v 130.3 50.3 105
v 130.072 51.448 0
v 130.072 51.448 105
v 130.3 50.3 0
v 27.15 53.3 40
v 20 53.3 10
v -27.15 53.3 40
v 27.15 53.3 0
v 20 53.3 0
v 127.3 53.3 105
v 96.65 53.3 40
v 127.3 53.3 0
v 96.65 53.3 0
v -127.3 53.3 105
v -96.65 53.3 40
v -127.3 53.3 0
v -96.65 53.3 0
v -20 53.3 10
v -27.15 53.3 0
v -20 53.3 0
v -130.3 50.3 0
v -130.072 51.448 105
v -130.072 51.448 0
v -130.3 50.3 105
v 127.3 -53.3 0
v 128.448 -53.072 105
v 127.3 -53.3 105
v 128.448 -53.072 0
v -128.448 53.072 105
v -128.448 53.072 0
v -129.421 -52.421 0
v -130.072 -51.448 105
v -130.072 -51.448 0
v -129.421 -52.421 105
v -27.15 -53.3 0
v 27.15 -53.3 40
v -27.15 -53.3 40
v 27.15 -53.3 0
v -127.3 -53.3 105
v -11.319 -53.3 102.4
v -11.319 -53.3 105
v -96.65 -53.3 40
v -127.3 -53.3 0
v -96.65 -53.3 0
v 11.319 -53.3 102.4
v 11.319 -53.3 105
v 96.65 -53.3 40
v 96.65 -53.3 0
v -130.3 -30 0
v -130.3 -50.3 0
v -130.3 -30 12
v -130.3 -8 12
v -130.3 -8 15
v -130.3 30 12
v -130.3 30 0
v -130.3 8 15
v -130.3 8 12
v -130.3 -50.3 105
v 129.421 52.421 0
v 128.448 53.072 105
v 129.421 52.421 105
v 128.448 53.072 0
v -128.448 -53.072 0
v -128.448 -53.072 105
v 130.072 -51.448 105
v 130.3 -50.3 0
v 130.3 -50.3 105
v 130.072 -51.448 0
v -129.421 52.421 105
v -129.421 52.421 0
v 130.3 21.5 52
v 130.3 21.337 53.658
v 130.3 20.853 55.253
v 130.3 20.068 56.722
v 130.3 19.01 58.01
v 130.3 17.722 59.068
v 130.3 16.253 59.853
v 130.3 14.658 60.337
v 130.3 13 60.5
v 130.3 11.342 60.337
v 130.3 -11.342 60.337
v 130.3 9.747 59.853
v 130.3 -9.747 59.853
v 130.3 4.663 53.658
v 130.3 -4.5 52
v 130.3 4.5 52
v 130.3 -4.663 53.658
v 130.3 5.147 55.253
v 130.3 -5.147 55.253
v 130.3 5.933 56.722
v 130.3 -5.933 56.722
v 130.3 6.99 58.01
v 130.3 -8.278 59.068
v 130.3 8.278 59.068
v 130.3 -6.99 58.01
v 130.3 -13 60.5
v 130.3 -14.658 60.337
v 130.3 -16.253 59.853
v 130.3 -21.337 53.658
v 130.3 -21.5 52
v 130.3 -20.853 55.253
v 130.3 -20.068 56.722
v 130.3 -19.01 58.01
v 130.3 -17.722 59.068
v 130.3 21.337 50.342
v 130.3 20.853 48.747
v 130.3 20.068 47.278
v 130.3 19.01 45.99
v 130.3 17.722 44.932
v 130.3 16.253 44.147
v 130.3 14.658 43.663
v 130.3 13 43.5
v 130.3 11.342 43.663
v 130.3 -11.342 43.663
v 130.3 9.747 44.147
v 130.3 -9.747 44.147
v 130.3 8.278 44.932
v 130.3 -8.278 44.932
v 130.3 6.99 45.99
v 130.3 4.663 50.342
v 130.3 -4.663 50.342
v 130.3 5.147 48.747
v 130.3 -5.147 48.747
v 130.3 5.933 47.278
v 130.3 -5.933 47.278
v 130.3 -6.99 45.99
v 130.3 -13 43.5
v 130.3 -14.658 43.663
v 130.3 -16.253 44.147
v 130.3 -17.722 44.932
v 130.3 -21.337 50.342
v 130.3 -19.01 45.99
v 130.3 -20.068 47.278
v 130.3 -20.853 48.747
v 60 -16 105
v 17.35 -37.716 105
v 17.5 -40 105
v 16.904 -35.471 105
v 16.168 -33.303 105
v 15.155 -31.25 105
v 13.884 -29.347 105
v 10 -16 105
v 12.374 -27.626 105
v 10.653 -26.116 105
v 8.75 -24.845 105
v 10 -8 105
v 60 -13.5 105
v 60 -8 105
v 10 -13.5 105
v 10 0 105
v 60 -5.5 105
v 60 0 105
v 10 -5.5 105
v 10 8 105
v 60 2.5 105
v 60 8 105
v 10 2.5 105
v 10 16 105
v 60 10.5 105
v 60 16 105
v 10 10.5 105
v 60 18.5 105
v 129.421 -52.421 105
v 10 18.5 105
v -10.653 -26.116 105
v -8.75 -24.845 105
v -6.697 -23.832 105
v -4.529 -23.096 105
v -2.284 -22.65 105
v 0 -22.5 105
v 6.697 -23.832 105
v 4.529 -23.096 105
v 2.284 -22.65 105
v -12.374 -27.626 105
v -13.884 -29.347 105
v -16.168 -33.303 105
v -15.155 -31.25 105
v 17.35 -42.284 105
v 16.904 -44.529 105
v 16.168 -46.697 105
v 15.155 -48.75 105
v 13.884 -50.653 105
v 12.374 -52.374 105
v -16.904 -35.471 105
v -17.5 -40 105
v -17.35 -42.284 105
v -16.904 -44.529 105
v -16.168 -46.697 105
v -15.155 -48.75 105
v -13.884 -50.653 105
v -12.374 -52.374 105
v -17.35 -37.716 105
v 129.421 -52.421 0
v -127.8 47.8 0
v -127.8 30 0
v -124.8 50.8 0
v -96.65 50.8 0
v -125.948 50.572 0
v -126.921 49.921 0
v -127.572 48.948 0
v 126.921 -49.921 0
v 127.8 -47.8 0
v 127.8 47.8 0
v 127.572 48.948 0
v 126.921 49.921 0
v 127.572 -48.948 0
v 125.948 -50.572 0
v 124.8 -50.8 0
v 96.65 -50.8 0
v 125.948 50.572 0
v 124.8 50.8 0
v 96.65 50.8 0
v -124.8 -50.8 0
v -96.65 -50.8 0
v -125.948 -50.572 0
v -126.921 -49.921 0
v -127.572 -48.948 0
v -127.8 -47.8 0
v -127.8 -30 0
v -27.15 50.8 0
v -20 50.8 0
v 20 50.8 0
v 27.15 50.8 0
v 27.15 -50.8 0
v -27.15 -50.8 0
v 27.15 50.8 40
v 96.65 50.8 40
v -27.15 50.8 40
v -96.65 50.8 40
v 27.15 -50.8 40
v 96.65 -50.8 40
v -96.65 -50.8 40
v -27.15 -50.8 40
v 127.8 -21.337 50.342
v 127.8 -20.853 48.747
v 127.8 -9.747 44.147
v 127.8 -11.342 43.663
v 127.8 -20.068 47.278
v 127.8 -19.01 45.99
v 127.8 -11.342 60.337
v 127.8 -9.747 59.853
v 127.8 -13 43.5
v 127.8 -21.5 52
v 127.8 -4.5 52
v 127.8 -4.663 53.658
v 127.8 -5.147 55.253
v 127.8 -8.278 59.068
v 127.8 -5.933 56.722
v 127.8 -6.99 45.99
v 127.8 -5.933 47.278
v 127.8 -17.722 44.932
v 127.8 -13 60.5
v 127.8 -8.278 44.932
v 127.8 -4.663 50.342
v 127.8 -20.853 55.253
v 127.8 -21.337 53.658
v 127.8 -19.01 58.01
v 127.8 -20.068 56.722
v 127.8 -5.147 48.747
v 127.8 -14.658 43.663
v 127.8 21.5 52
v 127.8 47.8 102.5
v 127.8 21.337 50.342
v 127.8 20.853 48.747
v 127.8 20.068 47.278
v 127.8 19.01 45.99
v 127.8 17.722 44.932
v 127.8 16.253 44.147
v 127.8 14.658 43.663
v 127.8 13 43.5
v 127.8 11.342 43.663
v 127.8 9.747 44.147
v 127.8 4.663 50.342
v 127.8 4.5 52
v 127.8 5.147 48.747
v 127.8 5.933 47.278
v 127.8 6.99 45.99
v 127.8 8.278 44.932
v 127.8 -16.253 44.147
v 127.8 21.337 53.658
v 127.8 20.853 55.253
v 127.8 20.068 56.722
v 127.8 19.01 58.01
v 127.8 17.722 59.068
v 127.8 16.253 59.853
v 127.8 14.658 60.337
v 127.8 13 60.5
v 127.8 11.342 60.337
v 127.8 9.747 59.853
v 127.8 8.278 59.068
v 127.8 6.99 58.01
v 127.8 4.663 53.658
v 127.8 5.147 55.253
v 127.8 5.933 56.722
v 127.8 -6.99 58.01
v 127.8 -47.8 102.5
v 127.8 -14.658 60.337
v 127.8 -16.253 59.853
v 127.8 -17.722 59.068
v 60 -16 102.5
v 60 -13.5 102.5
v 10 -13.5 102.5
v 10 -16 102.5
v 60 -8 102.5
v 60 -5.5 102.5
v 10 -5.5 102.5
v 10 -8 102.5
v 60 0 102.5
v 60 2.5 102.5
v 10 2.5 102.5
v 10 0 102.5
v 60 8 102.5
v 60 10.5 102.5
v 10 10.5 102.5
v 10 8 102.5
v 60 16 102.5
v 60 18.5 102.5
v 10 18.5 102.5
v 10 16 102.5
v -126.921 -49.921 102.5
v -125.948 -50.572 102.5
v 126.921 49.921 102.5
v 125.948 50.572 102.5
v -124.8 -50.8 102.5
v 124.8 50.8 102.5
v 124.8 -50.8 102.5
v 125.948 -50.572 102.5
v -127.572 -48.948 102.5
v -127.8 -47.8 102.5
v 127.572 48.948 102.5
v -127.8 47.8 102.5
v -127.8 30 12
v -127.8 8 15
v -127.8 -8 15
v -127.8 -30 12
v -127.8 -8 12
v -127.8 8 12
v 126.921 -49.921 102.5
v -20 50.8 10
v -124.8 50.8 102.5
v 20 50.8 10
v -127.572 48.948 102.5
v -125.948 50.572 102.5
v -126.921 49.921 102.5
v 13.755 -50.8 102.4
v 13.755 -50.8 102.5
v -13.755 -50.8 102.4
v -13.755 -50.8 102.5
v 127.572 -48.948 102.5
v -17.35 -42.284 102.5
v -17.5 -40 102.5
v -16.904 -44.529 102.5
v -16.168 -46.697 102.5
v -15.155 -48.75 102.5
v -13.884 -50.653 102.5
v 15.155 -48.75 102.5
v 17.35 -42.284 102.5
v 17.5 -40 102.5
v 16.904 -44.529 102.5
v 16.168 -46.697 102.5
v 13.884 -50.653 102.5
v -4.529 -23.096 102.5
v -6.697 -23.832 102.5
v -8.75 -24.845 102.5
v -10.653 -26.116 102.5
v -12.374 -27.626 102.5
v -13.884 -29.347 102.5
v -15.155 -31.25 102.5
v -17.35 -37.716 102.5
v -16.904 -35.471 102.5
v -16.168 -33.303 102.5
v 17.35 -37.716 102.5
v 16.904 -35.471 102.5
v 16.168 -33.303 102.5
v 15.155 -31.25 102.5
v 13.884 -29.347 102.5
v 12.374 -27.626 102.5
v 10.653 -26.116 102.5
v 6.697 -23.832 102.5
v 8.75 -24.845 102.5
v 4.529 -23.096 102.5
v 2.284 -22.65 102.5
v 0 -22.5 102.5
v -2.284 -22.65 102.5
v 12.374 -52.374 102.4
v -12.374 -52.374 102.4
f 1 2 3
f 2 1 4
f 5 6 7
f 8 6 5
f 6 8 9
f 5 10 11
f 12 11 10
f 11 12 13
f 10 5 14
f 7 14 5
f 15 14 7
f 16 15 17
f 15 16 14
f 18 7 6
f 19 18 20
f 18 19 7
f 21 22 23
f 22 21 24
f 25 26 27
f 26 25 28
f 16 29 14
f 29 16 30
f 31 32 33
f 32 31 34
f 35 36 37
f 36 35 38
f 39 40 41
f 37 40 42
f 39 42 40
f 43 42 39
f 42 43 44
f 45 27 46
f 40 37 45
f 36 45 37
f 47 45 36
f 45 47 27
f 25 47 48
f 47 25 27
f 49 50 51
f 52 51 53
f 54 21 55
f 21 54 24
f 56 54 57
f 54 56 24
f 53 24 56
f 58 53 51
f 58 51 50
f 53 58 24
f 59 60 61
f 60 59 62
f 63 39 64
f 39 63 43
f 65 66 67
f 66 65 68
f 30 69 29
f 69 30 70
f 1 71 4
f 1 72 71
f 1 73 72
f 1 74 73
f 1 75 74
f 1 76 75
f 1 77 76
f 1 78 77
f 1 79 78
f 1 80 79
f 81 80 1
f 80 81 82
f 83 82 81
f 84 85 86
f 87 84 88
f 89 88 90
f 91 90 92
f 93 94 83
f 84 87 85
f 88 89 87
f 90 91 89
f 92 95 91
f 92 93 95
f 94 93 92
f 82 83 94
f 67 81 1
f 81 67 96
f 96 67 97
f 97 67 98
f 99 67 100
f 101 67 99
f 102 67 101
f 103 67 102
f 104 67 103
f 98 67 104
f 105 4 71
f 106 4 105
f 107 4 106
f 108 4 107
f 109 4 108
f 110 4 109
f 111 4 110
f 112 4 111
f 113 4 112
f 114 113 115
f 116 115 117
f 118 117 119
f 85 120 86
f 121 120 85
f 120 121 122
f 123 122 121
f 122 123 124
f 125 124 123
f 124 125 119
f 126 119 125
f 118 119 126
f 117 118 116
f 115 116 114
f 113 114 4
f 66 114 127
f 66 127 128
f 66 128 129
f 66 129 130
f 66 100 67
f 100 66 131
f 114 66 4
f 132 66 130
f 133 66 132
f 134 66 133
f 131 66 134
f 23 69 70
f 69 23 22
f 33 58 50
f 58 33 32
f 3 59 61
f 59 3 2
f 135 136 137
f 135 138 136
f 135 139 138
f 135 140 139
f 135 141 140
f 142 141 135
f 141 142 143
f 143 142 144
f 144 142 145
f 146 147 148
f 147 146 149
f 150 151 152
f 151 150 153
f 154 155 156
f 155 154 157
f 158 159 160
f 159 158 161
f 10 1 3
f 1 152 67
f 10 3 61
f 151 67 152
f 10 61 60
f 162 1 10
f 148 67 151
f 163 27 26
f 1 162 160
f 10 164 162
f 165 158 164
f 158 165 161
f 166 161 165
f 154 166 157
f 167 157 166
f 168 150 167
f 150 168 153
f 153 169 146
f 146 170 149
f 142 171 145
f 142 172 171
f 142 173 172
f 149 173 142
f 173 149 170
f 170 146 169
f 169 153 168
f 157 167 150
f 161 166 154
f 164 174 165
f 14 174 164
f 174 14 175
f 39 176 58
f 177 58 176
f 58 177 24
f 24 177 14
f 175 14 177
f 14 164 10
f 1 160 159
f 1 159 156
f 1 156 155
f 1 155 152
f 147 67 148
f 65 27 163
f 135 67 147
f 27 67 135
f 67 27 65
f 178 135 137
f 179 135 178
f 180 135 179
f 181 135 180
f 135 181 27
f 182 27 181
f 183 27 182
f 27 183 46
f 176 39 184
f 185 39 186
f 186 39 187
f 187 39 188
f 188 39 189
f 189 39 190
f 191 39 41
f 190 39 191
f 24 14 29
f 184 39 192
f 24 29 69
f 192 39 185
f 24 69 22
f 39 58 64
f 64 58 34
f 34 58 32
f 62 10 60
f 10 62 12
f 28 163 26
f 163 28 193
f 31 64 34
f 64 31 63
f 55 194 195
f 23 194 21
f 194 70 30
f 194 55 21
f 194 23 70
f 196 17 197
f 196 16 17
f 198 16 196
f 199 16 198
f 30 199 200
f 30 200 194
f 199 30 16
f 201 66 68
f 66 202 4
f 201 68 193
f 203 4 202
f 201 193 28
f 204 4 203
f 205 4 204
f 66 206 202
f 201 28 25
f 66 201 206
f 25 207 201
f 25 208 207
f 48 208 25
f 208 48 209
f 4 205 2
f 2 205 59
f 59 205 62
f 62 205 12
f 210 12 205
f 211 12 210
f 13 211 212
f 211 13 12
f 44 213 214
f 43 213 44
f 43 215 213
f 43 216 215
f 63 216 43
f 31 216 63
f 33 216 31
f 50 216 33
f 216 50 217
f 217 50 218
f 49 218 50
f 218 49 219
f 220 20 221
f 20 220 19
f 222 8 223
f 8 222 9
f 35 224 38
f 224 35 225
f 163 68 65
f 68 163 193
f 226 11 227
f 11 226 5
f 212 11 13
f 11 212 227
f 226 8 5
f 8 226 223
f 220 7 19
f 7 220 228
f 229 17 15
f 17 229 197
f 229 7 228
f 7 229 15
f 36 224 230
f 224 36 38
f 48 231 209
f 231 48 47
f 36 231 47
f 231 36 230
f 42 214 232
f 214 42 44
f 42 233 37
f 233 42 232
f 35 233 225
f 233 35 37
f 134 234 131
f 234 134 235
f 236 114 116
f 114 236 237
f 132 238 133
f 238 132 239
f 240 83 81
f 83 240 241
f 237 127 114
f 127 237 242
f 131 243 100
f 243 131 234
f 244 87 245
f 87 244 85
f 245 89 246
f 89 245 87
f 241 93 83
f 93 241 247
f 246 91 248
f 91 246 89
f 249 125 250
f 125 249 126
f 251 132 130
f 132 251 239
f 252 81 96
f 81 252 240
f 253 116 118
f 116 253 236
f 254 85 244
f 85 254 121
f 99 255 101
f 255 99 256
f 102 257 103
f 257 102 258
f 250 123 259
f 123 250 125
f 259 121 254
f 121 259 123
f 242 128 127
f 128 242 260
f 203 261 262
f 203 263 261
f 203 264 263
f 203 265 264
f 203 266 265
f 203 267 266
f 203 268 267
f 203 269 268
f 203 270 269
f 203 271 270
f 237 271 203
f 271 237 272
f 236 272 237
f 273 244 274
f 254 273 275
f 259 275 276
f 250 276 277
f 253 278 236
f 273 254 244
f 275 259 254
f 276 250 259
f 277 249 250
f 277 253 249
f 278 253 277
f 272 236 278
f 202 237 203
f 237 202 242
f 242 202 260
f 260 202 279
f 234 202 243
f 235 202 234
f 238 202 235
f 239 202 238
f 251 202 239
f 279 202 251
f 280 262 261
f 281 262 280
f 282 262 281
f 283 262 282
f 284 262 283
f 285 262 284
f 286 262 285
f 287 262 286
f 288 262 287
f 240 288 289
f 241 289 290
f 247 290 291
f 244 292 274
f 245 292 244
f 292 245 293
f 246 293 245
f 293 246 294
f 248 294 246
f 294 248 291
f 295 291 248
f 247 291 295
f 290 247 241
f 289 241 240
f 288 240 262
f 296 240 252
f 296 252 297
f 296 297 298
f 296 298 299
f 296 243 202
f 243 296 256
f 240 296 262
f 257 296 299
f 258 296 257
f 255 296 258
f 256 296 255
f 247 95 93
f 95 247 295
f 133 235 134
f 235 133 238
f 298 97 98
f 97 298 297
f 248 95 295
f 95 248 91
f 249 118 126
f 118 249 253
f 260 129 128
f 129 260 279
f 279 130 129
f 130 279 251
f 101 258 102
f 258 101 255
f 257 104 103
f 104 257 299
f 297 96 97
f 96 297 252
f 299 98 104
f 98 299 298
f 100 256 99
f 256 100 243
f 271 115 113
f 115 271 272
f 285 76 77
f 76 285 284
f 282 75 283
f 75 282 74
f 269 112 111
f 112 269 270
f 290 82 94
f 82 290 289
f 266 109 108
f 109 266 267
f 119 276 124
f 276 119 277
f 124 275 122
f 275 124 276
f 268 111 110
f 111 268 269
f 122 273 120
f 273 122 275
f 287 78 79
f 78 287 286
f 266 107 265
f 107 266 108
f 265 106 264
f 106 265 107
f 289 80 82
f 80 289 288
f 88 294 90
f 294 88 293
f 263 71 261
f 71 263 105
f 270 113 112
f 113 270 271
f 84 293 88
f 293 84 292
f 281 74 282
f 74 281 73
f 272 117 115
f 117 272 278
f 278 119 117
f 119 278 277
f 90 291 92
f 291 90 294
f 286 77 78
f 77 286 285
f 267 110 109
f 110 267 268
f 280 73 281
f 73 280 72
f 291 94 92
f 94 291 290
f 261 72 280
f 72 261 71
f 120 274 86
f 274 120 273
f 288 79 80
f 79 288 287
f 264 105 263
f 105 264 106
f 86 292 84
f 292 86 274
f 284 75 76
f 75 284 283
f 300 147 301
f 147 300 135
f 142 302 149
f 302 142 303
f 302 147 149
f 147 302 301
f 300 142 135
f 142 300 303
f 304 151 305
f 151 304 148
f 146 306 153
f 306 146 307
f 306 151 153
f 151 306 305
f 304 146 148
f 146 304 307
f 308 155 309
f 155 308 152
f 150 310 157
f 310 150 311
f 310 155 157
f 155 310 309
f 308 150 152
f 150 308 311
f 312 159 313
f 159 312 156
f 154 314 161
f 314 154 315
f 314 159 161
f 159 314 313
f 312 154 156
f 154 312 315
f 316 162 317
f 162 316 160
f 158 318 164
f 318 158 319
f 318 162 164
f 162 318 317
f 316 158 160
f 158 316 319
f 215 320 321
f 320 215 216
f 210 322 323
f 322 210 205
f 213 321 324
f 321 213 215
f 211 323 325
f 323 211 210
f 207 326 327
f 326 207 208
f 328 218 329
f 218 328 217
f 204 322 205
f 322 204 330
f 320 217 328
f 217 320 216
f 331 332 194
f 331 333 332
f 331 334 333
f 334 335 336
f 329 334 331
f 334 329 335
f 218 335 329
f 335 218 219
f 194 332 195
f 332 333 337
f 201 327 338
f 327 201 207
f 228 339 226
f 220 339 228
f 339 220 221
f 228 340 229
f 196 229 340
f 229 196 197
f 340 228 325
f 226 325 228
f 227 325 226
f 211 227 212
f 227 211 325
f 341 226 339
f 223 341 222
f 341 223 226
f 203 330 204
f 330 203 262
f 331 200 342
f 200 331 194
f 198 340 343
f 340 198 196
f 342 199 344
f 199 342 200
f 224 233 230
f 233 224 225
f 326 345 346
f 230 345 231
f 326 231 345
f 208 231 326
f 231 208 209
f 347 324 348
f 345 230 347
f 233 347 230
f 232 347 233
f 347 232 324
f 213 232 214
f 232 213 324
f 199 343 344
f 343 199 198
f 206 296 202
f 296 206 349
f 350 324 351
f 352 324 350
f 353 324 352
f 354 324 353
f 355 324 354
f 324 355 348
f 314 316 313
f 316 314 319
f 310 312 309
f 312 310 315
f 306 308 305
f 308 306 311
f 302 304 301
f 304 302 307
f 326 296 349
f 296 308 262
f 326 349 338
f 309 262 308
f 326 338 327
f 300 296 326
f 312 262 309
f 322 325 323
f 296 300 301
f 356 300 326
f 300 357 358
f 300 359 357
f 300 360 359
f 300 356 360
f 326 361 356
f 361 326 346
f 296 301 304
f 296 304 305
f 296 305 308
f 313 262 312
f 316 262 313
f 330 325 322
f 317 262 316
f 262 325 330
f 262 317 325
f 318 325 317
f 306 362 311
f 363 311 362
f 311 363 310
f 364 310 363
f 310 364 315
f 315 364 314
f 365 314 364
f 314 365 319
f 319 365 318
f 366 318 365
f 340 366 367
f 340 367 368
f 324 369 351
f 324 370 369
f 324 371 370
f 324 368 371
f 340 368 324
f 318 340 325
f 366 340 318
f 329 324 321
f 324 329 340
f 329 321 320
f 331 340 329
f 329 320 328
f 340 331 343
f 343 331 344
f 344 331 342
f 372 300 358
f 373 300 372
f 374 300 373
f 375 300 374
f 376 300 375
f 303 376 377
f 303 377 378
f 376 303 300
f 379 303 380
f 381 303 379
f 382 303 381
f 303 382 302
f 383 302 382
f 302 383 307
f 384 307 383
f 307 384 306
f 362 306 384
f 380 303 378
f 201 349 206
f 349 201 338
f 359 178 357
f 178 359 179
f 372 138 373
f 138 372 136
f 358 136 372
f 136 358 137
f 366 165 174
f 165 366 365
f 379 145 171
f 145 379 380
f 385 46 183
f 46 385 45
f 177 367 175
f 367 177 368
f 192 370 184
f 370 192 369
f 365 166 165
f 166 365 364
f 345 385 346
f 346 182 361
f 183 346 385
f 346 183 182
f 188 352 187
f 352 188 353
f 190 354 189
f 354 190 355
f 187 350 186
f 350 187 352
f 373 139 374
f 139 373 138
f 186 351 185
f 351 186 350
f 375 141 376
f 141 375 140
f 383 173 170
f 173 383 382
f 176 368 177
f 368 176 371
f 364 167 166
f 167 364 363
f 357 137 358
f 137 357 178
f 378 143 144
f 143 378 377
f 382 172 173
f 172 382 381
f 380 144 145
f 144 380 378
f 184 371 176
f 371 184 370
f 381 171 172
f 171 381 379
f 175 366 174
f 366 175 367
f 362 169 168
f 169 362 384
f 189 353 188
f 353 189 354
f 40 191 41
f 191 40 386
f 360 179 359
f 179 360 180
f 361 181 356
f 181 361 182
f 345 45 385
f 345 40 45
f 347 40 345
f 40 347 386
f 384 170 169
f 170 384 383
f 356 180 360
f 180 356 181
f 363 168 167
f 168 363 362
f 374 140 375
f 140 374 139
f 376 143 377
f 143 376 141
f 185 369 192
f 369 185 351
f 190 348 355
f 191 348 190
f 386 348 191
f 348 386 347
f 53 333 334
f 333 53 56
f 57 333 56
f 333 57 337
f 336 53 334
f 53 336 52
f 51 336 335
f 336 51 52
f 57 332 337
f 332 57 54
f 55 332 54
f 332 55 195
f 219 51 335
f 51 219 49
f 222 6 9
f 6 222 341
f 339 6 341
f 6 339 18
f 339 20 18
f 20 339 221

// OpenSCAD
// ============================================
// ESCORT BOT SHELL — Clean Minimal Box v4
// ============================================
// MEASURED by Romeo 2026-03-19:
//   Total width (tire-to-tire): 6" (152.4mm)
//   Tire width: 1" (25.4mm) each
//   Tire diameter: 2.5" (63.5mm)
//   Gap between front & rear tires: 2-3/8" (60.3mm)
//   Chassis length: 10" (254mm, Amazon confirmed)
// Mounting: L-brackets at 4 corners
//
// F5 = preview | F6 = render | File > Export STL
// Print: 0.2mm layer, 15% infill, no supports
// ============================================

// --- DIMENSIONS (mm) — REAL MEASUREMENTS ---
chassis_l  = 254;      // 10" front-to-back (Amazon confirmed)
chassis_w  = 100;      // frame body width (152mm tire-to-tire - 2x25.4mm tires = 101.2mm - clearance)
wheel_d    = 63.5;     // 2.5" tire diameter (measured)
wheel_w    = 25.4;     // 1" tire width (measured)
tire_gap   = 60.3;     // 2-3/8" gap between front & rear tires (measured)
wheel_r    = wheel_d / 2 + 3;  // 34.75mm — radius + 3mm clearance

// Shell height: keeping 105mm (ground-to-tallest ~165mm, plate at ~63.5mm)
shell_h    = 105;
wall       = 2.5;
tol        = 0.8;      // slide-on fit gap per side
corner_r   = 3;

// Derived outer dims
inner_l = chassis_l + tol * 2;
inner_w = chassis_w + tol * 2;
outer_l = inner_l + wall * 2;
outer_w = inner_w + wall * 2;

// Wheel arch height — how tall the arch cutout is from the bottom
// Tires are 63.5mm diameter, poke ~6mm above the support plate
wheel_arch_h = 40;

// Wheel positions — DERIVED FROM TIRE GAP MEASUREMENT
// Axle-to-axle = tire_gap + wheel_d = 60.3 + 63.5 = 123.8mm
// wx = half that distance from chassis center
wx = (tire_gap + wheel_d) / 2;  // ~61.9mm from center
wy = outer_w / 2;               // wheels at the side walls

// L-bracket mounting — 4 corners
bracket_hole_d = 5;    // M3 or M4 screw + clearance
bracket_tab_w  = 12;   // tab width
bracket_tab_d  = 12;   // tab depth (inward from wall)
bracket_tab_h  = 3;    // tab thickness
bracket_z      = 15;   // height above bottom edge
// Bracket tab inset from wheel arch (so they don't collide)
bracket_inset  = 20;   // mm inboard from wheel arch center

// Mast hole
mast_d = 35;          // 1" PVC + clearance
mast_x = 0;
mast_y = -40;         // rear-center

// HC-SR04 front face
sr04_eye_r   = 8.5;
sr04_eye_gap = 26;
sr04_z       = 52;    // mid-height of shell

// USB-C rear slot
usbc_w = 16;
usbc_h = 10;
usbc_z = 5;

// Top vents over Pi
vent_w     = 50;
vent_h     = 2.5;
vent_count = 5;
vent_gap   = 8;
vent_x     = 35;

// ============================================
// BUILD
// ============================================

module rounded_rect(l, w, h, r) {
    hull() {
        for (x = [-l/2+r, l/2-r])
            for (y = [-w/2+r, w/2-r])
                translate([x, y, 0])
                    cylinder(r=r, h=h, $fn=16);
    }
}

module shell() {
    difference() {
        union() {
            // Outer box
            rounded_rect(outer_l, outer_w, shell_h, corner_r);

            // --- L-BRACKET MOUNTING TABS (4 corners, inside) ---
            for (fb = [1, -1]) {
                for (side = [1, -1]) {
                    translate([
                        fb * (inner_l/2 - bracket_tab_w/2 - bracket_inset),
                        side * (inner_w/2 - bracket_tab_d),
                        bracket_z
                    ])
                        cube([bracket_tab_w, bracket_tab_d, bracket_tab_h]);
                }
            }
        }

        // Hollow (open bottom)
        translate([0, 0, -0.1])
            rounded_rect(inner_l, inner_w, shell_h - wall + 0.1, corner_r);

        // --- WHEEL ARCHES (4 corners) ---
        // 2.5" diameter x 1" wide tires — measured 2026-03-19
        for (side = [1, -1]) {
            for (fb = [1, -1]) {
                // Arch: wheel_r radius x (wheel_w + 6mm clearance) deep
                translate([fb * wx, side * (wy - wheel_w/2 - 3), 0])
                    hull() {
                        cylinder(r=wheel_r, h=wheel_arch_h, $fn=48);
                        translate([0, side * (wheel_w + 6), 0])
                            cylinder(r=wheel_r, h=wheel_arch_h, $fn=48);
                    }
            }
        }

        // --- L-BRACKET SCREW HOLES (through the tabs) ---
        for (fb = [1, -1]) {
            for (side = [1, -1]) {
                translate([
                    fb * (inner_l/2 - bracket_tab_w/2 - bracket_inset),
                    side * (inner_w/2 - bracket_tab_d/2),
                    bracket_z - 0.1
                ])
                    cylinder(d=bracket_hole_d, h=bracket_tab_h + 0.2, $fn=24);
            }
        }

        // --- MAST HOLE (top) ---
        translate([mast_x, mast_y, shell_h - wall - 0.1])
            cylinder(d=mast_d, h=wall + 0.2, $fn=48);

        // --- HC-SR04 EYES (front wall) ---
        for (dy = [-sr04_eye_gap/2, sr04_eye_gap/2]) {
            translate([outer_l/2, dy, sr04_z])
                rotate([0, 90, 0])
                    cylinder(r=sr04_eye_r, h=wall*2, center=true, $fn=32);
        }

        // --- USB-C SLOT (rear wall) ---
        translate([-outer_l/2 - 0.1, -usbc_w/2, usbc_z])
            cube([wall + 0.2, usbc_w, usbc_h]);

        // --- VENT SLOTS (top) ---
        for (i = [0 : vent_count - 1]) {
            translate([
                vent_x - vent_w/2,
                i * vent_gap - (vent_count - 1) * vent_gap / 2,
                shell_h - wall - 0.1
            ])
                cube([vent_w, vent_h, wall + 0.2]);
        }

        // --- REAR WIRE SLOT (bottom of back wall) ---
        translate([-outer_l/2 - 0.1, -30, 0])
            cube([wall + 0.2, 60, 12]);

        // --- SIDE WIRE SLOT (bottom of left wall) ---
        translate([-20, outer_w/2 - wall - 0.1, 0])
            cube([40, wall + 0.2, 10]);
    }
}

// ============================================
// RENDER
// ============================================

color("#2a2a2a") shell();

// Info
echo(str("=== ESCORT BOT SHELL v4 — MEASURED ==="));
echo(str("Outer: ", outer_l, " x ", outer_w, " x ", shell_h, " mm"));
echo(str("Inner: ", inner_l, " x ", inner_w, " mm"));
echo(str("Wheel: ", wheel_d, "mm dia x ", wheel_w, "mm wide (MEASURED)"));
echo(str("Wheel arch: ", wheel_r*2, "mm arc x ", wheel_arch_h, "mm tall"));
echo(str("Tire gap: ", tire_gap, "mm | Axle-to-axle: ", tire_gap + wheel_d, "mm"));
echo(str("Wheel center offset (wx): ", wx, "mm from center"));
echo(str("L-bracket holes: ", bracket_hole_d, "mm at Z=", bracket_z, "mm"));
echo(str("Wall: ", wall, "mm | Tol: ", tol, "mm/side"));
